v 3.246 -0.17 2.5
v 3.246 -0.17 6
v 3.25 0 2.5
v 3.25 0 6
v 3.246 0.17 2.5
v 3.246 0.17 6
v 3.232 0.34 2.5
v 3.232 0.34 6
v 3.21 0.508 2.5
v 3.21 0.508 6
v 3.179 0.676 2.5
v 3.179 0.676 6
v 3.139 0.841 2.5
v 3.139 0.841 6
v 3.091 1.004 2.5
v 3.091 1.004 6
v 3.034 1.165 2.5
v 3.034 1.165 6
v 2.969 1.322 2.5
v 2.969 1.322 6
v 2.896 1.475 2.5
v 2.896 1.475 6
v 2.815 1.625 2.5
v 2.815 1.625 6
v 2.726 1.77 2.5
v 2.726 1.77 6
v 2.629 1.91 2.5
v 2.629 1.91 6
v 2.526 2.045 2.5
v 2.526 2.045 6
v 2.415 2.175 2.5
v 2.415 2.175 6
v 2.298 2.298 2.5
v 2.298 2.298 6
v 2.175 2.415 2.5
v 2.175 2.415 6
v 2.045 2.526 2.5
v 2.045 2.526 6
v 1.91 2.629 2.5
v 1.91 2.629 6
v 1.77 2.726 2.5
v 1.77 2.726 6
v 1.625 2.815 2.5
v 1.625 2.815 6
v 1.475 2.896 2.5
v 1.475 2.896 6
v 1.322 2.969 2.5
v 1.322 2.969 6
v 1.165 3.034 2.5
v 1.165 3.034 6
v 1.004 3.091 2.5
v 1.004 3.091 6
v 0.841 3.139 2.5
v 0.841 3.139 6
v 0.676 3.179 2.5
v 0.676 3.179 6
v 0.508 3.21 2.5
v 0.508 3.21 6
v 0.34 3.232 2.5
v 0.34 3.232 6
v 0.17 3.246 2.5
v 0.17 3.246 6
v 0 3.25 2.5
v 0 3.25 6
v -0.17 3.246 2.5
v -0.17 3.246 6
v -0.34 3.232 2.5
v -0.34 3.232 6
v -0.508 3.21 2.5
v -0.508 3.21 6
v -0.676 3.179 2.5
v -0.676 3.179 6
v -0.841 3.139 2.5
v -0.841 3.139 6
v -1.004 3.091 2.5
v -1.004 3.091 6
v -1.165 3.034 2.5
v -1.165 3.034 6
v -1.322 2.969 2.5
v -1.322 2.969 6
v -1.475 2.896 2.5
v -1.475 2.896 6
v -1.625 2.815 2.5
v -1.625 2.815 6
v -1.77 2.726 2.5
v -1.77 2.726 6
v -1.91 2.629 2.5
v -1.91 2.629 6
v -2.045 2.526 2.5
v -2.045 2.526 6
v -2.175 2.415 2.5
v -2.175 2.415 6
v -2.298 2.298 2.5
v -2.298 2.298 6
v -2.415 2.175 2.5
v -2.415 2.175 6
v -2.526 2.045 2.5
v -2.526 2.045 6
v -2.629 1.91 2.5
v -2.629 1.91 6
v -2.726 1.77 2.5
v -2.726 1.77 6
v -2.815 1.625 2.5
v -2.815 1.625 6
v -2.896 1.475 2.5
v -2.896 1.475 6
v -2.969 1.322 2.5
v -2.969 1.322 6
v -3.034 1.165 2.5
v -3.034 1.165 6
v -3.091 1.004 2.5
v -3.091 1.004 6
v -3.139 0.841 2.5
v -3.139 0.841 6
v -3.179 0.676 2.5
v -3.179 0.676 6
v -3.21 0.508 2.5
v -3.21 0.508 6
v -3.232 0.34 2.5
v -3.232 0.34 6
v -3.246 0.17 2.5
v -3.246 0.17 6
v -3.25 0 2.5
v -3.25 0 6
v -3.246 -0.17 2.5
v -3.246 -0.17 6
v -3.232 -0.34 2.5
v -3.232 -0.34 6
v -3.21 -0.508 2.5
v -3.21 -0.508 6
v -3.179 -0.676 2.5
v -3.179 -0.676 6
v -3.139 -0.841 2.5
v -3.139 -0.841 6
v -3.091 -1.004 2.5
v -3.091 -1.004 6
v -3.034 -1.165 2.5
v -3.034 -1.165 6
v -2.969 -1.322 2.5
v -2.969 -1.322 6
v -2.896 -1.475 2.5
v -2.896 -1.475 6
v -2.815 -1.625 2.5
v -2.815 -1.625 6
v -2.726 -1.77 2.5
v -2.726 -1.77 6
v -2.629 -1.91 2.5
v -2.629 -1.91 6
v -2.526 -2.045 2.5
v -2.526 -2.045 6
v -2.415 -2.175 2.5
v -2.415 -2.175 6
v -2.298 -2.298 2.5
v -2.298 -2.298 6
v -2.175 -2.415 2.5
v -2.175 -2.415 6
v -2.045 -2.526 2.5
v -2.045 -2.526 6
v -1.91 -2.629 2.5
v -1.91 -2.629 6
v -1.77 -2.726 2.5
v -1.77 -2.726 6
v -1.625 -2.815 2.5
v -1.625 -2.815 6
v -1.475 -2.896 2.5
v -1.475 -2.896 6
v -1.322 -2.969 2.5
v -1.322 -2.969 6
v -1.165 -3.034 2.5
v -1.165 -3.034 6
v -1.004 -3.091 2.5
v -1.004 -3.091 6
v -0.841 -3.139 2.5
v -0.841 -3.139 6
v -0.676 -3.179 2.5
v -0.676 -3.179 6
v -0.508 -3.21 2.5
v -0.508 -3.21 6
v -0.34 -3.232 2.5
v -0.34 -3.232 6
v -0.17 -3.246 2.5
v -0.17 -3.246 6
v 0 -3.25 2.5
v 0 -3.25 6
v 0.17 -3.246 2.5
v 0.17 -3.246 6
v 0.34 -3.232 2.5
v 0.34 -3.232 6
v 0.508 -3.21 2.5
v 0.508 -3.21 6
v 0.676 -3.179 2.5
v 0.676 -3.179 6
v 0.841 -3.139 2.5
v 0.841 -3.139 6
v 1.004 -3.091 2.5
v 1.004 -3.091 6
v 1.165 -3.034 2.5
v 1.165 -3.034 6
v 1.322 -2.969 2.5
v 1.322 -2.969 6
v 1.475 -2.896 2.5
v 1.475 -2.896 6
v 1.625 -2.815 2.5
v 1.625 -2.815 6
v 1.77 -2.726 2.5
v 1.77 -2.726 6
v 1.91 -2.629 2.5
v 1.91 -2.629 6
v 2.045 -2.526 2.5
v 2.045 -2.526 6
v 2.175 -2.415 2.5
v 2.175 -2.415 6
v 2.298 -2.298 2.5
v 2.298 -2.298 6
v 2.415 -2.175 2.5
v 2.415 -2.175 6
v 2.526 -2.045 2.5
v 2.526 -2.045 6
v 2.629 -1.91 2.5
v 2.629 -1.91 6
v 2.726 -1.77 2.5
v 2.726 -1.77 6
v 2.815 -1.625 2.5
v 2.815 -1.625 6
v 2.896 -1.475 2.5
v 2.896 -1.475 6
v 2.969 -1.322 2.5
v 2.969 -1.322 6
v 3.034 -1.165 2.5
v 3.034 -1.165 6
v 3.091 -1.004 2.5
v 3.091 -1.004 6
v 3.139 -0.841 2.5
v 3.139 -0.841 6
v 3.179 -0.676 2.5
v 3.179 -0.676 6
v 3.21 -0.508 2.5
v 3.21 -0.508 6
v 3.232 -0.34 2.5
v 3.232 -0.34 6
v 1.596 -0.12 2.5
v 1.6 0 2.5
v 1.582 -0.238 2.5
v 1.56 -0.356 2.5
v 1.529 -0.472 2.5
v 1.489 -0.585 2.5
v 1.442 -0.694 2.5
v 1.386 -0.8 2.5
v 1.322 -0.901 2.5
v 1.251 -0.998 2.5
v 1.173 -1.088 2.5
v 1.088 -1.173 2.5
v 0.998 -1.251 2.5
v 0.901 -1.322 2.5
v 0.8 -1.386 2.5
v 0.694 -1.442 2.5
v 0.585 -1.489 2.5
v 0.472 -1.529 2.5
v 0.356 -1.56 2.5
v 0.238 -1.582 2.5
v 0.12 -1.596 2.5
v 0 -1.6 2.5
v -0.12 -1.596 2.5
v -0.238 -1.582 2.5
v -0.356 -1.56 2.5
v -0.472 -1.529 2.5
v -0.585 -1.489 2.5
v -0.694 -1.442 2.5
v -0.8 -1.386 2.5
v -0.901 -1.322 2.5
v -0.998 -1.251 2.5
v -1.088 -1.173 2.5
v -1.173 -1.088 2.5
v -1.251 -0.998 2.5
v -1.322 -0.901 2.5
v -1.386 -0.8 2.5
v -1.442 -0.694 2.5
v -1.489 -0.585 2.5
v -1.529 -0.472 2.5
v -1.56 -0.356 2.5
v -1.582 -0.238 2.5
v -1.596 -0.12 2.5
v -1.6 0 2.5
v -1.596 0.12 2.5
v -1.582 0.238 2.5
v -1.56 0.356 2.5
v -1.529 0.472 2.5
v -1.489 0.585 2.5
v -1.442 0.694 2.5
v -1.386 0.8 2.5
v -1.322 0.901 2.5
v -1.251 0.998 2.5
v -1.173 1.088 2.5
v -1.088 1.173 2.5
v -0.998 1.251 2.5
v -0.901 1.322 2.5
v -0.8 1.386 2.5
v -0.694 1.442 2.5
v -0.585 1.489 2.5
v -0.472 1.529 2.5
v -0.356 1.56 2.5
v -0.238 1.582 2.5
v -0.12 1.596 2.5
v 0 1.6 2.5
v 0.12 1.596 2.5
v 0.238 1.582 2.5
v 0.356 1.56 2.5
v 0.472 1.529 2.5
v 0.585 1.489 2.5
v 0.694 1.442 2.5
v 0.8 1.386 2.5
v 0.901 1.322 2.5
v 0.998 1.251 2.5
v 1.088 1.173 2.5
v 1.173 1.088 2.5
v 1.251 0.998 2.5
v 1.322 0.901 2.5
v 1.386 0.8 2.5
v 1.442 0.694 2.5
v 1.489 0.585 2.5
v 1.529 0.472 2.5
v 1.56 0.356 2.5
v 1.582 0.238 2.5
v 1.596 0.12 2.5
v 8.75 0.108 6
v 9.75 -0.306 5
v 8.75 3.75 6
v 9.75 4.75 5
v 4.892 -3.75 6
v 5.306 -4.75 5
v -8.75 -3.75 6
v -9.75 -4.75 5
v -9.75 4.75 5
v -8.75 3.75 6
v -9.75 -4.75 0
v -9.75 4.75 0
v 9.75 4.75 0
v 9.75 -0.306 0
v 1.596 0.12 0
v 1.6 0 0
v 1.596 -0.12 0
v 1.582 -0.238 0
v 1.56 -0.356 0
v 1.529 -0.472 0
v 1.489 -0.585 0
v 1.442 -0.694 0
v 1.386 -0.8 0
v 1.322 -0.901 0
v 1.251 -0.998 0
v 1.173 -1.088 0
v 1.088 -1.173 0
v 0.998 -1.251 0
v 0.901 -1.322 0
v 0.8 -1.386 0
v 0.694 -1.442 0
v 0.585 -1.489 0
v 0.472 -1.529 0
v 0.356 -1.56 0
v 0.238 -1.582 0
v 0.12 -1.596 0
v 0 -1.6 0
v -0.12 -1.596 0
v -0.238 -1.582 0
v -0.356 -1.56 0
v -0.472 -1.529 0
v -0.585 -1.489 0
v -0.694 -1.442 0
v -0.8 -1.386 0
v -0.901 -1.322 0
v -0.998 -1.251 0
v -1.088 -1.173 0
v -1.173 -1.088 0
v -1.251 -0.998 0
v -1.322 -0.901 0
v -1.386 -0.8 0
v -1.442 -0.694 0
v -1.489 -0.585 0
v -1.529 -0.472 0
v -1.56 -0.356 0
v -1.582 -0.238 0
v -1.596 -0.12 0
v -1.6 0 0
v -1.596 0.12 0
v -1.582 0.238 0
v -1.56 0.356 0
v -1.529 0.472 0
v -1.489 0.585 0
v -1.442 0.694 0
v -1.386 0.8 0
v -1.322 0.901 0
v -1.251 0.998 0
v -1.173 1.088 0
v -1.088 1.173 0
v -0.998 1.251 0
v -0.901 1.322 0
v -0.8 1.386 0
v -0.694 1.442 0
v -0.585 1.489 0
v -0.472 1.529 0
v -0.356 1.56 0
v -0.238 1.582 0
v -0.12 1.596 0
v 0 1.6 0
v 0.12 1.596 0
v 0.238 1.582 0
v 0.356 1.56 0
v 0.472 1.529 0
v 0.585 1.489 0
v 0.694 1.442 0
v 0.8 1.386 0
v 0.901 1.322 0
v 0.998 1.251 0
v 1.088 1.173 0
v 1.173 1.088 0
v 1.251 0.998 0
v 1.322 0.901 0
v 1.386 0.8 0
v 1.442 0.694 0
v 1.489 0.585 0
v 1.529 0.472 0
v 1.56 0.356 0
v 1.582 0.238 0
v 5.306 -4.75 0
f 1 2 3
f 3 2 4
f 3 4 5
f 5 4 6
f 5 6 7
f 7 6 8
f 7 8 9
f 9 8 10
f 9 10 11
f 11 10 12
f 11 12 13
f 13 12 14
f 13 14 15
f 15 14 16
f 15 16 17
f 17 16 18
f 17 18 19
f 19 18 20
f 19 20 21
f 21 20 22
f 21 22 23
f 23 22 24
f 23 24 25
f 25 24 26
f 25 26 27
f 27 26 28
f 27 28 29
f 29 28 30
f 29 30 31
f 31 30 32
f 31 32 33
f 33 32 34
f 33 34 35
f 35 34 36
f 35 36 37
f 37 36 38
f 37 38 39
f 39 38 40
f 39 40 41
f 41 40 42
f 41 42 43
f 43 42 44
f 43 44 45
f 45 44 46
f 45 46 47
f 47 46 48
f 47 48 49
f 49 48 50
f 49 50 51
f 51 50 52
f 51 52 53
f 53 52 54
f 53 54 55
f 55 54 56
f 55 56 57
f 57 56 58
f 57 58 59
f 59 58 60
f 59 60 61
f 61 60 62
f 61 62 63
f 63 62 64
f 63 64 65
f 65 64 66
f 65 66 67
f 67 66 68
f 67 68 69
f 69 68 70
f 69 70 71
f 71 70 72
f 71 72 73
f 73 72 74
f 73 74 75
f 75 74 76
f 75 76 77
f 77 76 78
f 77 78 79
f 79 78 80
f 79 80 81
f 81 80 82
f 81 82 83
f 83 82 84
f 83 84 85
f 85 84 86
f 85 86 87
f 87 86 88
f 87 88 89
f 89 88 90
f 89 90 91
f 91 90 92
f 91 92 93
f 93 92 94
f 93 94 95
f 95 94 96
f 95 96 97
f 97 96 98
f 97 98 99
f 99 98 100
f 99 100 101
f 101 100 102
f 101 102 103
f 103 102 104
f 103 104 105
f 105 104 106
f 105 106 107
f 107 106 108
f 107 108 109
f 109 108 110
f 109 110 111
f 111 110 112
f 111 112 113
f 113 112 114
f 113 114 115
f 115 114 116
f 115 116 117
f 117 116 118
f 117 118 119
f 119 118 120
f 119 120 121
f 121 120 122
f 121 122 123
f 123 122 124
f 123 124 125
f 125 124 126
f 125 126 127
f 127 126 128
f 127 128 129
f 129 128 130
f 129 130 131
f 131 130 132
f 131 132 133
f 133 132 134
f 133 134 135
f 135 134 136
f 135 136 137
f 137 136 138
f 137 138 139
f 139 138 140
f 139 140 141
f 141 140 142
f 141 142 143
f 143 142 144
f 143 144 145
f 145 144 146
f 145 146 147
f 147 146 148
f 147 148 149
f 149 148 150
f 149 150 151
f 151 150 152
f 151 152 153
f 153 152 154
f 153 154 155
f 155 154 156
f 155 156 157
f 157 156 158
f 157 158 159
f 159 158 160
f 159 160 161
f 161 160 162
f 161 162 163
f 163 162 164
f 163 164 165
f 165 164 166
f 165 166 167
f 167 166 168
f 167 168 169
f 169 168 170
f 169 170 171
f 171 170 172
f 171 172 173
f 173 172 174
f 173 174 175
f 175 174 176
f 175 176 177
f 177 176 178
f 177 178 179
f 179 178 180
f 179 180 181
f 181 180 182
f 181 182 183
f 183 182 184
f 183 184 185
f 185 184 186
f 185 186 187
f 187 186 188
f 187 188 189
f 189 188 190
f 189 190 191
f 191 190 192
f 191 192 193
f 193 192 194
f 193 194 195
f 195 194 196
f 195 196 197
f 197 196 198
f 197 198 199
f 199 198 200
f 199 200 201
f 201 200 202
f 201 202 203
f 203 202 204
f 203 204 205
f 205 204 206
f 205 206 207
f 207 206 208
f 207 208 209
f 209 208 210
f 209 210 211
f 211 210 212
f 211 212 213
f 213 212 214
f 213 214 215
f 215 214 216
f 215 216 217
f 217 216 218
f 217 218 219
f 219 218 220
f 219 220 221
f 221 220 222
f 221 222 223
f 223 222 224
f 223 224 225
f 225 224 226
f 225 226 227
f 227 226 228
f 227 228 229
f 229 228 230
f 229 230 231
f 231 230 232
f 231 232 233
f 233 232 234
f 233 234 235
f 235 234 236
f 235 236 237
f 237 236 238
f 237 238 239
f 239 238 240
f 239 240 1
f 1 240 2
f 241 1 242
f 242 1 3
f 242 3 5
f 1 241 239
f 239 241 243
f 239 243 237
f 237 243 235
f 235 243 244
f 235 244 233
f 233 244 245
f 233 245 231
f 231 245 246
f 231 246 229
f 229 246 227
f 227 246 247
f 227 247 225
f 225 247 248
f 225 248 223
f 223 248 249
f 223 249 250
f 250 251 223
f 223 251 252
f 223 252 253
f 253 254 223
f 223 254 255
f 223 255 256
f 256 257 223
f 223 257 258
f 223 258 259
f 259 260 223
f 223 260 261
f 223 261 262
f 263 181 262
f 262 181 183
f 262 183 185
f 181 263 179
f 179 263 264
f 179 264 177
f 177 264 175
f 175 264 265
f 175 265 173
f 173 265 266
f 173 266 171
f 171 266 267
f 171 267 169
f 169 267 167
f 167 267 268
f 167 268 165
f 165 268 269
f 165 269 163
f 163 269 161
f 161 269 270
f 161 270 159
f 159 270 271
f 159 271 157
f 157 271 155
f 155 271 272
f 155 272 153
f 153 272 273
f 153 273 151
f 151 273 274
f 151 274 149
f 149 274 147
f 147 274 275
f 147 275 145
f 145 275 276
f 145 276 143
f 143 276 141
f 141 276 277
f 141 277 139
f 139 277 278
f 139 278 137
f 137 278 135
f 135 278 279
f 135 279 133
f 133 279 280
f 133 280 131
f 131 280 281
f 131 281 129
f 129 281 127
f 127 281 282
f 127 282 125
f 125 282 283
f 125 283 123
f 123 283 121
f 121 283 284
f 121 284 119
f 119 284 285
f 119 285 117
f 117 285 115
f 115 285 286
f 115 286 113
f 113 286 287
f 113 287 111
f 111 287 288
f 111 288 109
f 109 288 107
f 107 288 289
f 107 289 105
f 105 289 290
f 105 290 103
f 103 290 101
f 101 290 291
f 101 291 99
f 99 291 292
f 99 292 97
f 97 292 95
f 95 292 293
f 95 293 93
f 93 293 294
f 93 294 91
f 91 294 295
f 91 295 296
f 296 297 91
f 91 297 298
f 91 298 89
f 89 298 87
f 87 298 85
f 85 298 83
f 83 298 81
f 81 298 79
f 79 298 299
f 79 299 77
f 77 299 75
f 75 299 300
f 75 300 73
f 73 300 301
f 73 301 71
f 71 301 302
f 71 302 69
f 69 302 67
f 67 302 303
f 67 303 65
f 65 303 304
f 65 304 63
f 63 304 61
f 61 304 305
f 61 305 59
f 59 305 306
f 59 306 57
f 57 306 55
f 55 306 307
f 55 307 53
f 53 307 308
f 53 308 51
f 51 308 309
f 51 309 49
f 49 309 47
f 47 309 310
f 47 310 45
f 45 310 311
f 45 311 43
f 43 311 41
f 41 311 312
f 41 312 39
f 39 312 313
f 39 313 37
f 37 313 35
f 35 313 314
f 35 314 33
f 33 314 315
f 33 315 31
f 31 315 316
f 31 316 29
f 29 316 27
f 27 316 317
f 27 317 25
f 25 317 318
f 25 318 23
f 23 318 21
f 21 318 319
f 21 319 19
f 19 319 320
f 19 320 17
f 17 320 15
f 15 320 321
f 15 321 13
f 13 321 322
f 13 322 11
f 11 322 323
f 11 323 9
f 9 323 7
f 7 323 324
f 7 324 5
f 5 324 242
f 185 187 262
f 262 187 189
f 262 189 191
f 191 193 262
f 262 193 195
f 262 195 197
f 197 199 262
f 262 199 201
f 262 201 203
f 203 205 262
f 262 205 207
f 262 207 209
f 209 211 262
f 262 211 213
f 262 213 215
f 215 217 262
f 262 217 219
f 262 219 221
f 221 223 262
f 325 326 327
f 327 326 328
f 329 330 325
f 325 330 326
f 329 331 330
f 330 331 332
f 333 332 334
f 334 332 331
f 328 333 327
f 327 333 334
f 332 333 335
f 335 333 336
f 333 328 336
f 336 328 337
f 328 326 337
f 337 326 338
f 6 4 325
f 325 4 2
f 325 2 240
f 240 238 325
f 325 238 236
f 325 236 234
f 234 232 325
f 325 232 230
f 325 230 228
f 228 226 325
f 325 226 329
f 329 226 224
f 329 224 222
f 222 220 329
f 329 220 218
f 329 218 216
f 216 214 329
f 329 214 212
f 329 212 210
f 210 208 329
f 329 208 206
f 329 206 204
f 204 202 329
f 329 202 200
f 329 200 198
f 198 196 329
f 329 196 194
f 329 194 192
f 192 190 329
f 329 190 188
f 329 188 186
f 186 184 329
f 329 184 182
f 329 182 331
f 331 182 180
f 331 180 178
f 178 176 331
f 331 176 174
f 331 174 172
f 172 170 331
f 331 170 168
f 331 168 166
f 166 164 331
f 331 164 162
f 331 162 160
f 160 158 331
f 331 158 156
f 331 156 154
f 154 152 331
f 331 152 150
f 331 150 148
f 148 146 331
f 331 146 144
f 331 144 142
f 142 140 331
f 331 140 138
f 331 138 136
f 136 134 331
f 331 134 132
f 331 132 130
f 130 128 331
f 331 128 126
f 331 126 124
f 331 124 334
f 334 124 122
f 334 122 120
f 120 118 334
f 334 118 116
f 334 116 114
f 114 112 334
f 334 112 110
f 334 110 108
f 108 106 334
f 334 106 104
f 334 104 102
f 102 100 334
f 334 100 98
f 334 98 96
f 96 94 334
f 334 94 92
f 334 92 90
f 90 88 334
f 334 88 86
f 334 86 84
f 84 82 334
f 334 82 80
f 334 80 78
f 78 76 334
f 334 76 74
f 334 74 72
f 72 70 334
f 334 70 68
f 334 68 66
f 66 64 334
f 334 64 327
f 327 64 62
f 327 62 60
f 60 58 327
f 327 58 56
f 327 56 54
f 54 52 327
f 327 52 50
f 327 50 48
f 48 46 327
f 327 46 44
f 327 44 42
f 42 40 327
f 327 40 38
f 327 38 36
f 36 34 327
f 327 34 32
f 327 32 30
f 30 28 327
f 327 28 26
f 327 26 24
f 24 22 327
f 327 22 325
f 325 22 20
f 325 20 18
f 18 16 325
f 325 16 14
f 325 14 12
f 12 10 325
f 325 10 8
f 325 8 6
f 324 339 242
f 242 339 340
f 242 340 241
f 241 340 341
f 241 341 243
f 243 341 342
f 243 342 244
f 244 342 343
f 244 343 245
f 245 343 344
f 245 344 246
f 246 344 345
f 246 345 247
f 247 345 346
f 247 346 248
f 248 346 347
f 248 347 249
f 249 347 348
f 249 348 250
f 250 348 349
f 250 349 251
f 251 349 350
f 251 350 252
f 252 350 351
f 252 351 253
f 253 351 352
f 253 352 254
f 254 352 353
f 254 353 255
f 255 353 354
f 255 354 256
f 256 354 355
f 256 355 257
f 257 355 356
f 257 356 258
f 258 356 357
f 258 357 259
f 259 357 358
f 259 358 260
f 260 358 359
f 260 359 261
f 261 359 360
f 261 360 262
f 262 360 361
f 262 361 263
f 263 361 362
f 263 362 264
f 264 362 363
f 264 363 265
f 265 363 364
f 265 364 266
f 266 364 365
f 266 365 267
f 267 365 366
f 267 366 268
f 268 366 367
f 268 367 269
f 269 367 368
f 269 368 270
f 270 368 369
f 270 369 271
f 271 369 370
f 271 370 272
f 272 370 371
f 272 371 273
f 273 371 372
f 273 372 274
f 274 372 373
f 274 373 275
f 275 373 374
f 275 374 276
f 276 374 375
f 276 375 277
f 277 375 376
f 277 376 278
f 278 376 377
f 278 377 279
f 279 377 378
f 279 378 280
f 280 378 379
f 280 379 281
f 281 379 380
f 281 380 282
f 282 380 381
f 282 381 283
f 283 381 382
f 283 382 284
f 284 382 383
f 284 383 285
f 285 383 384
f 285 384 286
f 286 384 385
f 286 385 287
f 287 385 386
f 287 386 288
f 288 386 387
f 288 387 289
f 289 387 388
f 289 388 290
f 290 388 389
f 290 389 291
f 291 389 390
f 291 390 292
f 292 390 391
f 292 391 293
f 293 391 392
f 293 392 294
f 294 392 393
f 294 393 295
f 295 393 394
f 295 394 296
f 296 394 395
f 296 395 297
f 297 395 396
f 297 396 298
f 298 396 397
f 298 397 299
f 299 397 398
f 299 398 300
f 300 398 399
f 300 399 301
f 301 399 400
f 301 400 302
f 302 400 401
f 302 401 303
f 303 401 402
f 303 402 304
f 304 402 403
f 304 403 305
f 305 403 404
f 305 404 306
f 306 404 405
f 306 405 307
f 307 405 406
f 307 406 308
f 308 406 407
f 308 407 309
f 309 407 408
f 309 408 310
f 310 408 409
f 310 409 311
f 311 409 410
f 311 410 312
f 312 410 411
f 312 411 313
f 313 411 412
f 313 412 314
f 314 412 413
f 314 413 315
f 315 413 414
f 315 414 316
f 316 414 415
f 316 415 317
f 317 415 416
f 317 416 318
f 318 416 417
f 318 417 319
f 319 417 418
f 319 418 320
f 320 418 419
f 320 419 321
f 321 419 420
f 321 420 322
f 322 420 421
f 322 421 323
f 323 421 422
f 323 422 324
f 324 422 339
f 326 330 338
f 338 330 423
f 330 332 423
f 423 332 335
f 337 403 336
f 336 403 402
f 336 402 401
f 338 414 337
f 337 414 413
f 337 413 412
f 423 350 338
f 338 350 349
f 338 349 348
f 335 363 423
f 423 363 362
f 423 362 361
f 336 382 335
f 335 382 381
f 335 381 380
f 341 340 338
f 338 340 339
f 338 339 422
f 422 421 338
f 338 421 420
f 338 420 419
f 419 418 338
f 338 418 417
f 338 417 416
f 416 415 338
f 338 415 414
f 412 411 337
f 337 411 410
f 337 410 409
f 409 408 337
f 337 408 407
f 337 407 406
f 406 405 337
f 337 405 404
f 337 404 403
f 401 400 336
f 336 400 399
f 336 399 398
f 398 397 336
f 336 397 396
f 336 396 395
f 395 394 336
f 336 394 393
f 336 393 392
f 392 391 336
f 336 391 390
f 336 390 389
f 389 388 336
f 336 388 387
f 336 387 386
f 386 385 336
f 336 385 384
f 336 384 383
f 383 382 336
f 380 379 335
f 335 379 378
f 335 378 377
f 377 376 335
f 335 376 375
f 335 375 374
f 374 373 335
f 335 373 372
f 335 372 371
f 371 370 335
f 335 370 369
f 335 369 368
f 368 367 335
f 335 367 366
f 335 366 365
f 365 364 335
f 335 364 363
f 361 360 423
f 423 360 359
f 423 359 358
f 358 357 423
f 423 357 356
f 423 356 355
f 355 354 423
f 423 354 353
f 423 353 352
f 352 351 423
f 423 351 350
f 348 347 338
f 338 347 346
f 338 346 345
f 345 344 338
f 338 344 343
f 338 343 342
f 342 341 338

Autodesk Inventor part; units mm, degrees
ref_plane "YZ Plane" through (0, 0, 0) normal (1, 0, 0) x (0, 1, 0)
ref_plane "XZ Plane" through (0, 0, 0) normal (0, 1, 0) x (-1, 0, 0)
ref_plane "XY Plane" through (0, 0, 0) normal (0, 0, 1) x (1, 0, 0)
sketch "Эскиз1" plane through (0, 0, 0) normal (0, 0, 1) x (1, 0, 0)
  line L0 (10, 5) -> (10, -0.4101) projected
  line L1 (-10, 5) -> (10, 5) projected
  line L2 (-10, -5) -> (-10, 5) projected
  line L3 (5.4101, -5) -> (-10, -5) projected
  line L4 (10, -0.4101) -> (5.4101, -5) projected
  line L5 (9.75, -0.3065) -> (9.75, 4.75)
  line L6 (9.75, 4.75) -> (-9.75, 4.75)
  line L7 (-9.75, 4.75) -> (-9.75, -4.75)
  line L8 (-9.75, -4.75) -> (5.3065, -4.75)
  line L9 (5.3065, -4.75) -> (9.75, -0.3065)
  circle A0 centre (0, 0) radius 1.6 projected
  line L10 (10, 5) -> (10, -0.4101) projected
  line L11 (-10, 5) -> (10, 5) projected
  line L12 (-10, -5) -> (-10, 5) projected
  line L13 (5.4101, -5) -> (-10, -5) projected
  line L14 (10, -0.4101) -> (5.4101, -5) projected
  circle A1 centre (0, 0) radius 1.6 projected
  dimension "d0" = 0.25
extrude "Выдавливание1" add sketch "Эскиз1" along normal blind 6 contours L9 L8 L7 L6 L5
chamfer "Фаска1" distance 1 angle 45 5 edges at (-2.2218, -4.75, 6) (7.5282, -2.5282, 6) (9.75, 2.2218, 6) (0, 4.75, 6) (-9.75, 0, 6)
sketch "Эскиз2" plane through (0, 0, 6) normal (0, 0, 1) x (1, 0, 0)
  circle A0 centre (0, 0) radius 3.25
  dimension "d6" = 6.5
extrude "Выдавливание2" cut sketch "Эскиз2" against normal blind 3.5
properties part number "leg2"
